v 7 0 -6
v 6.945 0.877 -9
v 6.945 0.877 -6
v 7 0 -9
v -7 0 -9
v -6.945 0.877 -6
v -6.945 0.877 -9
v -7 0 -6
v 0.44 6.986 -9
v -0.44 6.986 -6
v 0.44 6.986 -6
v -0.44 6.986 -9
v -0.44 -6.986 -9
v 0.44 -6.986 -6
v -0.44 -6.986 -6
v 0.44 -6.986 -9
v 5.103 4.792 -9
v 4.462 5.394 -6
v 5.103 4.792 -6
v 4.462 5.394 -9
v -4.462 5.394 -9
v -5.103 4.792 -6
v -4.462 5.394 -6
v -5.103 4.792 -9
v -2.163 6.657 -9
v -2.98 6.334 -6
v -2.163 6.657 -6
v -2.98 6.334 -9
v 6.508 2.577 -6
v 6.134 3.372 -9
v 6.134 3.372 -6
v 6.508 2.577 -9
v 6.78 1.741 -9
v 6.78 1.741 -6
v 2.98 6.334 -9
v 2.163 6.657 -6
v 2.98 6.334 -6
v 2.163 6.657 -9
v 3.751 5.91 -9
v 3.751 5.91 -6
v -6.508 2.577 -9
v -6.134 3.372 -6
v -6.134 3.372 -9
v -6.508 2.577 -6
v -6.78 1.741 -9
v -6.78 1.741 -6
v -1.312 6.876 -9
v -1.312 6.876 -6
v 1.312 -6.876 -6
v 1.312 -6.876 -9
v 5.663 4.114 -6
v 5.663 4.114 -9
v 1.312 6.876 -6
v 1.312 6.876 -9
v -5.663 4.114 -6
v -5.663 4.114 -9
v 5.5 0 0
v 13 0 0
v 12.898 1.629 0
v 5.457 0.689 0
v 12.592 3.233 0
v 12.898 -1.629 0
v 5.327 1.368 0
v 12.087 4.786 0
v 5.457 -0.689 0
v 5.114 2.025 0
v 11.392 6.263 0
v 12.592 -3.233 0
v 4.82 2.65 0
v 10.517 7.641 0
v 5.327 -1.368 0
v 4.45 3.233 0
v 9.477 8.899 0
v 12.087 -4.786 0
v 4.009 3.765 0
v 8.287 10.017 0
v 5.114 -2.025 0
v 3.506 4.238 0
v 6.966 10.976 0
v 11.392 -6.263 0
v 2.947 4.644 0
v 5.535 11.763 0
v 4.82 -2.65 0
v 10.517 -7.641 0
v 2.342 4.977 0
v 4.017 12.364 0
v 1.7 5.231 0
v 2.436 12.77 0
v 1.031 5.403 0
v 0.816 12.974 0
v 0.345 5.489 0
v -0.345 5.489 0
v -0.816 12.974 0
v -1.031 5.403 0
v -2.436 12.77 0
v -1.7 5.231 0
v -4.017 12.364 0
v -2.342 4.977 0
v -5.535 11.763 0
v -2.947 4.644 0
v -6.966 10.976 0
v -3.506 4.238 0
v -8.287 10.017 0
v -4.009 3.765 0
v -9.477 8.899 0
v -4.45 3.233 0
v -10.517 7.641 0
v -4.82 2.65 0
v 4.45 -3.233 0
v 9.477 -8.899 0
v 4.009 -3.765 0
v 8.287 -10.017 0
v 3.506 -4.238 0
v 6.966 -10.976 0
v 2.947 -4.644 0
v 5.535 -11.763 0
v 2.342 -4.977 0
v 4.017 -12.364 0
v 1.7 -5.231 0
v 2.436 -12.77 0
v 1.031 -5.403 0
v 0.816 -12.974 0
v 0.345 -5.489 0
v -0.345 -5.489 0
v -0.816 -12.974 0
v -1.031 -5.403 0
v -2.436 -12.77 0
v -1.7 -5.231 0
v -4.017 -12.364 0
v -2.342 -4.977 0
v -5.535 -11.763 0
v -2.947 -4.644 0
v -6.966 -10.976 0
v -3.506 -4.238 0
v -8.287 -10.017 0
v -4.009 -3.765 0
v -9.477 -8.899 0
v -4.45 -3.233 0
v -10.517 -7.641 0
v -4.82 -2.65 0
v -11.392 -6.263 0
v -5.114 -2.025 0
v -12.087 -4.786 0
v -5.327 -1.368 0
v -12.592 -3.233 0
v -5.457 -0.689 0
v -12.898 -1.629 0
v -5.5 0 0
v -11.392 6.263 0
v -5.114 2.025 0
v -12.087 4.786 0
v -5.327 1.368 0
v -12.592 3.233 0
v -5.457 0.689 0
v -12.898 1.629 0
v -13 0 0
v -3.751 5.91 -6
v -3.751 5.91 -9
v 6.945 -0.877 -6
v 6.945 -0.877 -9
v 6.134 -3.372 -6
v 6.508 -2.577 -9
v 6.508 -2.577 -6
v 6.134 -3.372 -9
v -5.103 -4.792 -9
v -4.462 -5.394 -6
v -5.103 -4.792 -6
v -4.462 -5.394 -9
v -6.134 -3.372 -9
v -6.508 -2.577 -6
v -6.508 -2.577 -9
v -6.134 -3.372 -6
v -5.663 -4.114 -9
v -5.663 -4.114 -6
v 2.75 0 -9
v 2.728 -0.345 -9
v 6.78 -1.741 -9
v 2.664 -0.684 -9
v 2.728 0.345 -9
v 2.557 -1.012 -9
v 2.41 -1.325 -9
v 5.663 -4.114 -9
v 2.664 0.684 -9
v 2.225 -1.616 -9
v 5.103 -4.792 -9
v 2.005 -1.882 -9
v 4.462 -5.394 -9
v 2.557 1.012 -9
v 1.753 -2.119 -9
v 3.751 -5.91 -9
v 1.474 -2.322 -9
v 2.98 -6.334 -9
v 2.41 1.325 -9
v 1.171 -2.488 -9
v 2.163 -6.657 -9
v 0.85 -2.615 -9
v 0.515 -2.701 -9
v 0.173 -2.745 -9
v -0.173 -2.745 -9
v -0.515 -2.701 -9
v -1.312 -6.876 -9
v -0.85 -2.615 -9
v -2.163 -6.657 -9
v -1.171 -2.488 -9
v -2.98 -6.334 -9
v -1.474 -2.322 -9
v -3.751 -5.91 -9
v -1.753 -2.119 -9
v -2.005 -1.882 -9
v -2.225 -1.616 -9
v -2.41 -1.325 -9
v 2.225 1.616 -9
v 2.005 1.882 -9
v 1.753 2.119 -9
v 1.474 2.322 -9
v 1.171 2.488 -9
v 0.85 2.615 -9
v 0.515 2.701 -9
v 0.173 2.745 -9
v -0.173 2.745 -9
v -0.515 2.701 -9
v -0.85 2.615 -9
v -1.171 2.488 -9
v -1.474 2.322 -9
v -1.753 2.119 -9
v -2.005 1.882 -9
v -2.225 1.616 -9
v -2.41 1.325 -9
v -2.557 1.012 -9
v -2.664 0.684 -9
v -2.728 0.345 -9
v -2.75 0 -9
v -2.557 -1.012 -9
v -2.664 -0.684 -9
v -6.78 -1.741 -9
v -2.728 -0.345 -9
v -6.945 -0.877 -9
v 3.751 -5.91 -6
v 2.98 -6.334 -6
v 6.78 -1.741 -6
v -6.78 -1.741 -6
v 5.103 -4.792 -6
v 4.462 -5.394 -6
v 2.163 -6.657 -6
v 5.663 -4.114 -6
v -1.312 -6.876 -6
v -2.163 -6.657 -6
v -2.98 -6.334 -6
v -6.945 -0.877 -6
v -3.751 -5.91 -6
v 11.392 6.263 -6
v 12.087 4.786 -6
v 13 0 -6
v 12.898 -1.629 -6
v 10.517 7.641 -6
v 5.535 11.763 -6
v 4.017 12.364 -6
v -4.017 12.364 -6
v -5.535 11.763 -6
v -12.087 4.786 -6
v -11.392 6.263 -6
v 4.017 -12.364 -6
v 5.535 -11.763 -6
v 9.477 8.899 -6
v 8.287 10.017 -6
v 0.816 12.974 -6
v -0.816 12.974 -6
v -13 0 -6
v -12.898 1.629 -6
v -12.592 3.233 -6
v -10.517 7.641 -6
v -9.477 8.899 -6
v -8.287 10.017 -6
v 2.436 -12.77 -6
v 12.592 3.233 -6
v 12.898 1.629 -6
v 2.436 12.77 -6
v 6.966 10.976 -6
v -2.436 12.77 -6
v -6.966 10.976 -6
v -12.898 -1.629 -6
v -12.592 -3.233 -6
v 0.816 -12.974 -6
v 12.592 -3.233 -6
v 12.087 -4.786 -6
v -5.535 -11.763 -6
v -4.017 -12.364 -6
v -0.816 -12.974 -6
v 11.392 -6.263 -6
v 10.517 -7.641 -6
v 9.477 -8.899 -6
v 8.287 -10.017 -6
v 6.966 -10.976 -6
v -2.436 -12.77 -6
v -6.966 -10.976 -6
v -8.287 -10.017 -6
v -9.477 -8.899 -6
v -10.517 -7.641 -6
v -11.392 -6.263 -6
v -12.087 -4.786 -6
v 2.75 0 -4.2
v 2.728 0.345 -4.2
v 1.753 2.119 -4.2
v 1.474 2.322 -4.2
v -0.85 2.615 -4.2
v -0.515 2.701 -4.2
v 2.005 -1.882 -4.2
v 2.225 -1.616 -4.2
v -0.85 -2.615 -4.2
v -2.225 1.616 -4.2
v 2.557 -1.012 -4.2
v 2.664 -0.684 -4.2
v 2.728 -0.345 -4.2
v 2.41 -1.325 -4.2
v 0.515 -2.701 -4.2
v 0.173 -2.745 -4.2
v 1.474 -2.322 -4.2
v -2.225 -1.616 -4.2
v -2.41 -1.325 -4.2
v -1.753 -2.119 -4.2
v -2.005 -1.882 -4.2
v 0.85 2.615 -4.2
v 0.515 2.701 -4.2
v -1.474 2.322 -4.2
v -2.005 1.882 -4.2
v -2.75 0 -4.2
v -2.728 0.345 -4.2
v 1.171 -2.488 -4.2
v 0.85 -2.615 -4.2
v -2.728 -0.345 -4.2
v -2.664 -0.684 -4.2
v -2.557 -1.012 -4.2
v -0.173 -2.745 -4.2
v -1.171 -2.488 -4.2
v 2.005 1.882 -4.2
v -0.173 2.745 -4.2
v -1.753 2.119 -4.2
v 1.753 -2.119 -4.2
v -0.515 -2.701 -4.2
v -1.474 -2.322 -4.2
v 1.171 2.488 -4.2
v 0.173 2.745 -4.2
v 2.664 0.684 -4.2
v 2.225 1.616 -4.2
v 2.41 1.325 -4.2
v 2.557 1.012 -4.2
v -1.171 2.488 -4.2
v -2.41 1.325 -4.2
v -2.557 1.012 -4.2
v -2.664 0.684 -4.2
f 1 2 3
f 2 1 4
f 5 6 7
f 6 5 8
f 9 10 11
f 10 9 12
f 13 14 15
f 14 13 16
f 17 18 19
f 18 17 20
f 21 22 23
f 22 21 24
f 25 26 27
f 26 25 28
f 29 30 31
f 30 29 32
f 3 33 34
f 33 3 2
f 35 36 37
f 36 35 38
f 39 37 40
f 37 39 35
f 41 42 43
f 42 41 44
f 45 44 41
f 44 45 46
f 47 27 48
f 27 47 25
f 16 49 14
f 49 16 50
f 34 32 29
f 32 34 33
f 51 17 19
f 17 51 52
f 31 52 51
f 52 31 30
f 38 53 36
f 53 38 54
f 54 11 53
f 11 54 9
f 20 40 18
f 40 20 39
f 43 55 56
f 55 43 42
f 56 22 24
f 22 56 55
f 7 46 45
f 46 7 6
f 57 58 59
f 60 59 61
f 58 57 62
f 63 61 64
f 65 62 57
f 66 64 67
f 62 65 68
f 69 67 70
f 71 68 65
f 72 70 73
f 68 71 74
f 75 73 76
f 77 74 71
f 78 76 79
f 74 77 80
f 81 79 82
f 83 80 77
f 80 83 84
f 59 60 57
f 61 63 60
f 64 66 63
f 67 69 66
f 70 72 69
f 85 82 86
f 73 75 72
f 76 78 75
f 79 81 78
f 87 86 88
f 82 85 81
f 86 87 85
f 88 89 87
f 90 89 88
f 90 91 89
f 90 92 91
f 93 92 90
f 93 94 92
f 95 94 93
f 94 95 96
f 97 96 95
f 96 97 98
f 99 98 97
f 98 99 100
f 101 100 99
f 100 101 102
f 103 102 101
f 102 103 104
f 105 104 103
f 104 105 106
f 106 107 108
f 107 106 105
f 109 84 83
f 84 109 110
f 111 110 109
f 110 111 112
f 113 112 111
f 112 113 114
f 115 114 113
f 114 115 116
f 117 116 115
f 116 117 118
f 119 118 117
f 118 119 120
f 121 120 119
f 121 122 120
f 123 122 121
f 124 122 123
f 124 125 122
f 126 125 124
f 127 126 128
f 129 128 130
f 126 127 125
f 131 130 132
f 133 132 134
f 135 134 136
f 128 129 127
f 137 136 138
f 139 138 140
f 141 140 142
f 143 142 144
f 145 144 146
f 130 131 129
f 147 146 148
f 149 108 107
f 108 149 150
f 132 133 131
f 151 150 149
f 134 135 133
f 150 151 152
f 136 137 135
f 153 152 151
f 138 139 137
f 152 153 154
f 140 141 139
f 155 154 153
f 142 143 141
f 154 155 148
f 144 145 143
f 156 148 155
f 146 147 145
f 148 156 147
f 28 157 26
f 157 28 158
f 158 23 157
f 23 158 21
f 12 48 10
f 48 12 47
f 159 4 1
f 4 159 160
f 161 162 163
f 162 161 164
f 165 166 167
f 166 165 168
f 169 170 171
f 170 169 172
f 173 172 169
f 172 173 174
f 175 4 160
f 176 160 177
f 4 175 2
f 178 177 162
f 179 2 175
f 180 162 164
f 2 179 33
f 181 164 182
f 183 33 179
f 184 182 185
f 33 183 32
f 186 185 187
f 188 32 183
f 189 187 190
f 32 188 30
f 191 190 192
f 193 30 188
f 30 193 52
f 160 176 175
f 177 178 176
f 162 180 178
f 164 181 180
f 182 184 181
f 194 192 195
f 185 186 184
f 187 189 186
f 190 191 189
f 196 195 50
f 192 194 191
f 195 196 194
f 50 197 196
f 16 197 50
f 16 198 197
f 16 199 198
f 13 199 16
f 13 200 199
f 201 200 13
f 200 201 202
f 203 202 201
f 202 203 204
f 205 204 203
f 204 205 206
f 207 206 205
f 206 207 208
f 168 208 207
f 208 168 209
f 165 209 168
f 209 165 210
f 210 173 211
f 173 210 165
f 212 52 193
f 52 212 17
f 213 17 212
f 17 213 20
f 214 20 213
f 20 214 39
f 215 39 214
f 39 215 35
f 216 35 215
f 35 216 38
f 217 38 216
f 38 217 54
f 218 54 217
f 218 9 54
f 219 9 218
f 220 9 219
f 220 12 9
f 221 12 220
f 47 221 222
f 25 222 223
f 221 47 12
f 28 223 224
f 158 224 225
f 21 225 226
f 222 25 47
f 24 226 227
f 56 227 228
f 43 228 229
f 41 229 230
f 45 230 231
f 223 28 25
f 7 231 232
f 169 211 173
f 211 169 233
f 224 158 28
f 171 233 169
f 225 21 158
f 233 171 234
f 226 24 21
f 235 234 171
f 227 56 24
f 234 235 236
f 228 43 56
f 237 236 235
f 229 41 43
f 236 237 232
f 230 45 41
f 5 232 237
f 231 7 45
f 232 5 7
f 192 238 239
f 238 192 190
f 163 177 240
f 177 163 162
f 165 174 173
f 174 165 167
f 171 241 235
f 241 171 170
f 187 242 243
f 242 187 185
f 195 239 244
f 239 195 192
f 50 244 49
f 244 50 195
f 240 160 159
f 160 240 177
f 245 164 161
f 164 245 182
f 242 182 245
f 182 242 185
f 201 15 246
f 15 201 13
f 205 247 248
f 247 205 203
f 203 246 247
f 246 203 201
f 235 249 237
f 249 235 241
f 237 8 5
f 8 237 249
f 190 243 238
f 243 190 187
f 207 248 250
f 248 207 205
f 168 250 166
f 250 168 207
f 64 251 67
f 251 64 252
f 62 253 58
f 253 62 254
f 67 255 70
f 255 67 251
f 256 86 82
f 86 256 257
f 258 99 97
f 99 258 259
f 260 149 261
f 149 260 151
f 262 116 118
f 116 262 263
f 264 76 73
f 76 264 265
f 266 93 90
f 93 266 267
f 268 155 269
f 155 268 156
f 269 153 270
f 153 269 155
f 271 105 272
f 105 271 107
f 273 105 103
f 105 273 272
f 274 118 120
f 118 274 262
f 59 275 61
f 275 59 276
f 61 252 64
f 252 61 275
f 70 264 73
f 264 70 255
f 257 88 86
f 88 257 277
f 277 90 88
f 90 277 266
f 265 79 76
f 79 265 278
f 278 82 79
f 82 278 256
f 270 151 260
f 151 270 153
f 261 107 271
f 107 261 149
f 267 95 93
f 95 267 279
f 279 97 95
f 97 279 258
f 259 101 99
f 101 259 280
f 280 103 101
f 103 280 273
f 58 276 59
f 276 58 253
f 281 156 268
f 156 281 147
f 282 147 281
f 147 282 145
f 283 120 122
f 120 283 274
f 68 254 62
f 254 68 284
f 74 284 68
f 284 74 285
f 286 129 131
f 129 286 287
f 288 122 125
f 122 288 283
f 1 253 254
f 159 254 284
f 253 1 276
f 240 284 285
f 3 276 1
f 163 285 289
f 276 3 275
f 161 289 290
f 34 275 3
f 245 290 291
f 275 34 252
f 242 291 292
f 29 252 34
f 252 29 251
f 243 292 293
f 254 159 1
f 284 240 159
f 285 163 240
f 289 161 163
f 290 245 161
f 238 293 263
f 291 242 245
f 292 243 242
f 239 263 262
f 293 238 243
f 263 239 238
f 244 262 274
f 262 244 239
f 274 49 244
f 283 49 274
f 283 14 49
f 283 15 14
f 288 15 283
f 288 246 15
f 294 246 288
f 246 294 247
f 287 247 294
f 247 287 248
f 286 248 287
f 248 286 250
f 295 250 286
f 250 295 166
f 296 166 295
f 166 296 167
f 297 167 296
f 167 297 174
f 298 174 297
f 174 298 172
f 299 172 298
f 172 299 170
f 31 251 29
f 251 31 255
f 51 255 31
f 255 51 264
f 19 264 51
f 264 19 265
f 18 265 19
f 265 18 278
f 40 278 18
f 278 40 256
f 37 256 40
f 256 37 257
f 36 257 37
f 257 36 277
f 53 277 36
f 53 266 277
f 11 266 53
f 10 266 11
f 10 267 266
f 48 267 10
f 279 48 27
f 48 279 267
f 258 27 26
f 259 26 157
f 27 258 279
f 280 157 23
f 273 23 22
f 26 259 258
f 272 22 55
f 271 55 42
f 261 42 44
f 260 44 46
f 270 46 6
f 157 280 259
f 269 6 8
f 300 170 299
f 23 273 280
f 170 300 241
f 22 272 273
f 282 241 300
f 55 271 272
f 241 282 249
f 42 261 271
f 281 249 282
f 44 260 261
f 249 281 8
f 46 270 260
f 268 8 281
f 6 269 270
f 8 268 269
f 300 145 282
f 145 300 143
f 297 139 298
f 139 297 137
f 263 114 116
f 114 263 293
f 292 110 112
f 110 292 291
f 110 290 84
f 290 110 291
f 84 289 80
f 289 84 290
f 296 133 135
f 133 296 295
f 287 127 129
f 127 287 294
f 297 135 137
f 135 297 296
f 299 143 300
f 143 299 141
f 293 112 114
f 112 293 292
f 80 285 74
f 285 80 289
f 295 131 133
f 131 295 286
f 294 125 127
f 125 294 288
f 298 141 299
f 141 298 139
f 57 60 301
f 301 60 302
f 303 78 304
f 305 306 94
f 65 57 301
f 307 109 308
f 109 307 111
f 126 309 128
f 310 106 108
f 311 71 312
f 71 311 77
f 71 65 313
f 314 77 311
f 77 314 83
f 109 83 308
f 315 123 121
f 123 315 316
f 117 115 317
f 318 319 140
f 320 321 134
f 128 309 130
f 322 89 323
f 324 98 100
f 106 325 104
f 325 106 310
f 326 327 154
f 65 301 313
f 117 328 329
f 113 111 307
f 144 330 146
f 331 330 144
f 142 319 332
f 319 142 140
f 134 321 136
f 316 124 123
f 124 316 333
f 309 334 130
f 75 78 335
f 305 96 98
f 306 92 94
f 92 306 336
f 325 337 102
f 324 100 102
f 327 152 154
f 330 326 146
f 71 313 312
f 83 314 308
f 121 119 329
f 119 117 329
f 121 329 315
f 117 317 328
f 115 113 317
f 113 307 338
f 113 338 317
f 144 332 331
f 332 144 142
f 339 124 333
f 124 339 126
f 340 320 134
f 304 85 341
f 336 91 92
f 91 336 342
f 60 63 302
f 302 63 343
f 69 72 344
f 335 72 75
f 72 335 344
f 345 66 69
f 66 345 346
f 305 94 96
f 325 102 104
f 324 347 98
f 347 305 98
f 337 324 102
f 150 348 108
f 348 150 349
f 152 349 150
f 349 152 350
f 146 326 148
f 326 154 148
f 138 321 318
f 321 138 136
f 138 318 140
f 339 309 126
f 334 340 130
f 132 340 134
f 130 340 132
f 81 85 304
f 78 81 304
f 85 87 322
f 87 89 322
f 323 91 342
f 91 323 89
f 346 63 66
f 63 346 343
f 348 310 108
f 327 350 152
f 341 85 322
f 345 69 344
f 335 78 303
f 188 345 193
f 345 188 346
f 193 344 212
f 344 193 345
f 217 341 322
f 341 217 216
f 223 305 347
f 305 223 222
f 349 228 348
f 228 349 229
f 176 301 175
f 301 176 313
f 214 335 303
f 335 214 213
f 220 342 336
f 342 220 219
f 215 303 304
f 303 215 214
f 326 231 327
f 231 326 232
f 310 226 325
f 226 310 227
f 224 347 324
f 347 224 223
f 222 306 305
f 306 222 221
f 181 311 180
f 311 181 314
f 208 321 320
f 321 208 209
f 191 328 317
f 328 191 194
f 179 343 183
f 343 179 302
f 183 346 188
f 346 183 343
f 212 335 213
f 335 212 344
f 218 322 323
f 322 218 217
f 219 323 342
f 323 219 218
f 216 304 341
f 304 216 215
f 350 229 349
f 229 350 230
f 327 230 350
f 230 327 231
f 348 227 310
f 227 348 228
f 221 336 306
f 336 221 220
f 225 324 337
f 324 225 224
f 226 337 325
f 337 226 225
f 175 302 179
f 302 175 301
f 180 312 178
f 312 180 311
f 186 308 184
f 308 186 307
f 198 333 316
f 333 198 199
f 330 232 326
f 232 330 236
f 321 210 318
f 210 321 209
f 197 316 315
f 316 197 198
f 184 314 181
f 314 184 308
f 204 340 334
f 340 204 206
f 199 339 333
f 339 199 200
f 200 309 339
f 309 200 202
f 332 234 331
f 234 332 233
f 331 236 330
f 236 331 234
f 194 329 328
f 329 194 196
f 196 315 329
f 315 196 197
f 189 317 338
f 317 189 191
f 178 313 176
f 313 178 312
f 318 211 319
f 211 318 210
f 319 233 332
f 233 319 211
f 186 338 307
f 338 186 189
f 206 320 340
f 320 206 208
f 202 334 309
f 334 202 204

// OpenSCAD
$fn = 50;


difference() {
	union() {
		translate(v = [0, 0, -9.0000000000]) {
			cylinder(h = 9, r = 7.0000000000);
		}
		translate(v = [0, 0, -6.0000000000]) {
			cylinder(h = 6, r = 13.0000000000);
		}
	}
	union() {
		translate(v = [0, 0, 0]) {
			rotate(a = [0, 0, 0]) {
				difference() {
					union() {
						#translate(v = [0, 0, -9.0000000000]) {
							cylinder(h = 9, r = 2.2500000000);
						}
						#translate(v = [0, 0, -4.2000000000]) {
							cylinder(h = 4.2000000000, r1 = 2.7500000000, r2 = 5.5000000000);
						}
						#translate(v = [0, 0, -9.0000000000]) {
							cylinder(h = 9, r = 2.7500000000);
						}
						#translate(v = [0, 0, -9.0000000000]) {
							cylinder(h = 9, r = 2.2500000000);
						}
					}
					union();
				}
			}
		}
	}
}
